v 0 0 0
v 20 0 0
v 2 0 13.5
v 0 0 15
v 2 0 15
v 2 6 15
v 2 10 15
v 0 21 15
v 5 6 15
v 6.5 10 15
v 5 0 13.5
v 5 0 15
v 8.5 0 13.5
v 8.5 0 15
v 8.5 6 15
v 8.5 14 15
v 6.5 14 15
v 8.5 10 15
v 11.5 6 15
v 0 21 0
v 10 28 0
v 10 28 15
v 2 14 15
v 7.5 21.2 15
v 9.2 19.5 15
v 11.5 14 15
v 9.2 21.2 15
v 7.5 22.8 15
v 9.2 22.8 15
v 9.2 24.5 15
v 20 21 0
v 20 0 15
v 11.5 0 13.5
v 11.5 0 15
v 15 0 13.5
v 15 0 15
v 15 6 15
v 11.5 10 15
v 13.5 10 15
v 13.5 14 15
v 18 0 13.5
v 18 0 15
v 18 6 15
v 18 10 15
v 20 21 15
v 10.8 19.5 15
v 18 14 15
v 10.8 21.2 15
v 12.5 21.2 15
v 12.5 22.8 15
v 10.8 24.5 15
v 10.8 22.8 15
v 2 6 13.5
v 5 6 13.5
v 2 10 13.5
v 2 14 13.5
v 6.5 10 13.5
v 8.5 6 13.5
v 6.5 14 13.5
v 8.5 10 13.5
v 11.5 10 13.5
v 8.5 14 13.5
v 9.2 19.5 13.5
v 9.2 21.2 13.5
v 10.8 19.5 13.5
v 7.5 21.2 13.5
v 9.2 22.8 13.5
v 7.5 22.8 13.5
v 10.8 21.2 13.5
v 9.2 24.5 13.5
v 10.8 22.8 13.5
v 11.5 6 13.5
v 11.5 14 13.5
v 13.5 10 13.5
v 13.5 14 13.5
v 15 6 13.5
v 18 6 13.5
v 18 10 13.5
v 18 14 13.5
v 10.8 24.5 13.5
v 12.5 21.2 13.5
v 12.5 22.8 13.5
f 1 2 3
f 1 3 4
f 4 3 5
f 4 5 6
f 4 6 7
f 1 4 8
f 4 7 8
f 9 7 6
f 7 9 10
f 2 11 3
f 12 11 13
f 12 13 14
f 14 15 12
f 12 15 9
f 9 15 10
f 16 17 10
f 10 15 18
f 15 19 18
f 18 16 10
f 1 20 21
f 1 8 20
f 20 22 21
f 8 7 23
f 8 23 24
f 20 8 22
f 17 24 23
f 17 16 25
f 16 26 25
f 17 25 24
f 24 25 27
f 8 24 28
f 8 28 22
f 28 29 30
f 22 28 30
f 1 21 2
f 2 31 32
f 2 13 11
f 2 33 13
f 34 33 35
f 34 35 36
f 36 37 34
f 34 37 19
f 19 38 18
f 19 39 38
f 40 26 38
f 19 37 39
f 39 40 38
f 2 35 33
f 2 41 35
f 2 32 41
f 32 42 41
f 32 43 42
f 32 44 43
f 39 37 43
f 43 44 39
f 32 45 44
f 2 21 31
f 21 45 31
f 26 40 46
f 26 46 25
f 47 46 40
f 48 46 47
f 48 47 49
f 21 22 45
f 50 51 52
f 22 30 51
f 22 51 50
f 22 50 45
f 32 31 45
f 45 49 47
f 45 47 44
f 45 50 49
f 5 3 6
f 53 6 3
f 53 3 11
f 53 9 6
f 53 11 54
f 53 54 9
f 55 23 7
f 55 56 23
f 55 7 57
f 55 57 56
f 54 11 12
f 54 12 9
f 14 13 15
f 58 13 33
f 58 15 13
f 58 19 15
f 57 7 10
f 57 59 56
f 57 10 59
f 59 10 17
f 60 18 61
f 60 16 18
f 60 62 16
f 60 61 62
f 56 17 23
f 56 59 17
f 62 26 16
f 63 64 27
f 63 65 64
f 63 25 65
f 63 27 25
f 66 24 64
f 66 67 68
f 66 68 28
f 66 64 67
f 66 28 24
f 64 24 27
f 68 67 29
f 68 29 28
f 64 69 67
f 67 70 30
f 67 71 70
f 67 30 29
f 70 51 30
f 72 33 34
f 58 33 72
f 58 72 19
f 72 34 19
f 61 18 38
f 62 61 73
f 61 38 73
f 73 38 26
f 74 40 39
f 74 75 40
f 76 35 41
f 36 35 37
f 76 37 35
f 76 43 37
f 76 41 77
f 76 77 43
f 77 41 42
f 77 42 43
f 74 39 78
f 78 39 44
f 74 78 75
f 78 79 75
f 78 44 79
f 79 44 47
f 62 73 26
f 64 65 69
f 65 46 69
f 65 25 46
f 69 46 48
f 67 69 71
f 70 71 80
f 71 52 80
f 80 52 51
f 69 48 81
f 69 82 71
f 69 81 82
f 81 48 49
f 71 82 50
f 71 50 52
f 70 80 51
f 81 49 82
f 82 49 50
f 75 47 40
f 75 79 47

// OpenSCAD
// Facade game piece in mm: X width, Y height, Z depth.
// Place Z=0 flat on the build plate; all recessed details are 1.5 mm deep.
$fn=64;
module rect(x,y,w,h){translate([x,y]) square([w,h]);}
module disk(x,y,r){translate([x,y]) circle(r=r);}
module line(a,b,w=1.5){hull(){translate(a) circle(d=w);translate(b) circle(d=w);}}
module path(points,w=1.5){for(i=[0:len(points)-2]) line(points[i],points[i+1],w);}
module cross_icon(x,y,size=6,bar=1.8){union(){rect(x-size/2,y-bar/2,size,bar);rect(x-bar/2,y-size/2,bar,size);}}
module tank(x,y,w,h){union(){rect(x,y,w,h-w/2);disk(x+w/2,y+h-w/2,w/2);}}
module ring(x,y,r,w=1.3){difference(){disk(x,y,r);disk(x,y,r-w);}}

module silhouette(){
polygon([[0,0],[20,0],[20,21],[10,28],[0,21]]);
}
module facade_recesses(){union(){
cross_icon(10,22,5,1.6);
for(x=[2,8.5,15]) rect(x,0,3,6);
rect(2,10,4.5,4);rect(13.5,10,4.5,4);
rect(8.5,10,3,4);
}}
difference(){
 linear_extrude(height=15) silhouette();
 translate([0,0,13.5]) linear_extrude(height=2) facade_recesses();
}
